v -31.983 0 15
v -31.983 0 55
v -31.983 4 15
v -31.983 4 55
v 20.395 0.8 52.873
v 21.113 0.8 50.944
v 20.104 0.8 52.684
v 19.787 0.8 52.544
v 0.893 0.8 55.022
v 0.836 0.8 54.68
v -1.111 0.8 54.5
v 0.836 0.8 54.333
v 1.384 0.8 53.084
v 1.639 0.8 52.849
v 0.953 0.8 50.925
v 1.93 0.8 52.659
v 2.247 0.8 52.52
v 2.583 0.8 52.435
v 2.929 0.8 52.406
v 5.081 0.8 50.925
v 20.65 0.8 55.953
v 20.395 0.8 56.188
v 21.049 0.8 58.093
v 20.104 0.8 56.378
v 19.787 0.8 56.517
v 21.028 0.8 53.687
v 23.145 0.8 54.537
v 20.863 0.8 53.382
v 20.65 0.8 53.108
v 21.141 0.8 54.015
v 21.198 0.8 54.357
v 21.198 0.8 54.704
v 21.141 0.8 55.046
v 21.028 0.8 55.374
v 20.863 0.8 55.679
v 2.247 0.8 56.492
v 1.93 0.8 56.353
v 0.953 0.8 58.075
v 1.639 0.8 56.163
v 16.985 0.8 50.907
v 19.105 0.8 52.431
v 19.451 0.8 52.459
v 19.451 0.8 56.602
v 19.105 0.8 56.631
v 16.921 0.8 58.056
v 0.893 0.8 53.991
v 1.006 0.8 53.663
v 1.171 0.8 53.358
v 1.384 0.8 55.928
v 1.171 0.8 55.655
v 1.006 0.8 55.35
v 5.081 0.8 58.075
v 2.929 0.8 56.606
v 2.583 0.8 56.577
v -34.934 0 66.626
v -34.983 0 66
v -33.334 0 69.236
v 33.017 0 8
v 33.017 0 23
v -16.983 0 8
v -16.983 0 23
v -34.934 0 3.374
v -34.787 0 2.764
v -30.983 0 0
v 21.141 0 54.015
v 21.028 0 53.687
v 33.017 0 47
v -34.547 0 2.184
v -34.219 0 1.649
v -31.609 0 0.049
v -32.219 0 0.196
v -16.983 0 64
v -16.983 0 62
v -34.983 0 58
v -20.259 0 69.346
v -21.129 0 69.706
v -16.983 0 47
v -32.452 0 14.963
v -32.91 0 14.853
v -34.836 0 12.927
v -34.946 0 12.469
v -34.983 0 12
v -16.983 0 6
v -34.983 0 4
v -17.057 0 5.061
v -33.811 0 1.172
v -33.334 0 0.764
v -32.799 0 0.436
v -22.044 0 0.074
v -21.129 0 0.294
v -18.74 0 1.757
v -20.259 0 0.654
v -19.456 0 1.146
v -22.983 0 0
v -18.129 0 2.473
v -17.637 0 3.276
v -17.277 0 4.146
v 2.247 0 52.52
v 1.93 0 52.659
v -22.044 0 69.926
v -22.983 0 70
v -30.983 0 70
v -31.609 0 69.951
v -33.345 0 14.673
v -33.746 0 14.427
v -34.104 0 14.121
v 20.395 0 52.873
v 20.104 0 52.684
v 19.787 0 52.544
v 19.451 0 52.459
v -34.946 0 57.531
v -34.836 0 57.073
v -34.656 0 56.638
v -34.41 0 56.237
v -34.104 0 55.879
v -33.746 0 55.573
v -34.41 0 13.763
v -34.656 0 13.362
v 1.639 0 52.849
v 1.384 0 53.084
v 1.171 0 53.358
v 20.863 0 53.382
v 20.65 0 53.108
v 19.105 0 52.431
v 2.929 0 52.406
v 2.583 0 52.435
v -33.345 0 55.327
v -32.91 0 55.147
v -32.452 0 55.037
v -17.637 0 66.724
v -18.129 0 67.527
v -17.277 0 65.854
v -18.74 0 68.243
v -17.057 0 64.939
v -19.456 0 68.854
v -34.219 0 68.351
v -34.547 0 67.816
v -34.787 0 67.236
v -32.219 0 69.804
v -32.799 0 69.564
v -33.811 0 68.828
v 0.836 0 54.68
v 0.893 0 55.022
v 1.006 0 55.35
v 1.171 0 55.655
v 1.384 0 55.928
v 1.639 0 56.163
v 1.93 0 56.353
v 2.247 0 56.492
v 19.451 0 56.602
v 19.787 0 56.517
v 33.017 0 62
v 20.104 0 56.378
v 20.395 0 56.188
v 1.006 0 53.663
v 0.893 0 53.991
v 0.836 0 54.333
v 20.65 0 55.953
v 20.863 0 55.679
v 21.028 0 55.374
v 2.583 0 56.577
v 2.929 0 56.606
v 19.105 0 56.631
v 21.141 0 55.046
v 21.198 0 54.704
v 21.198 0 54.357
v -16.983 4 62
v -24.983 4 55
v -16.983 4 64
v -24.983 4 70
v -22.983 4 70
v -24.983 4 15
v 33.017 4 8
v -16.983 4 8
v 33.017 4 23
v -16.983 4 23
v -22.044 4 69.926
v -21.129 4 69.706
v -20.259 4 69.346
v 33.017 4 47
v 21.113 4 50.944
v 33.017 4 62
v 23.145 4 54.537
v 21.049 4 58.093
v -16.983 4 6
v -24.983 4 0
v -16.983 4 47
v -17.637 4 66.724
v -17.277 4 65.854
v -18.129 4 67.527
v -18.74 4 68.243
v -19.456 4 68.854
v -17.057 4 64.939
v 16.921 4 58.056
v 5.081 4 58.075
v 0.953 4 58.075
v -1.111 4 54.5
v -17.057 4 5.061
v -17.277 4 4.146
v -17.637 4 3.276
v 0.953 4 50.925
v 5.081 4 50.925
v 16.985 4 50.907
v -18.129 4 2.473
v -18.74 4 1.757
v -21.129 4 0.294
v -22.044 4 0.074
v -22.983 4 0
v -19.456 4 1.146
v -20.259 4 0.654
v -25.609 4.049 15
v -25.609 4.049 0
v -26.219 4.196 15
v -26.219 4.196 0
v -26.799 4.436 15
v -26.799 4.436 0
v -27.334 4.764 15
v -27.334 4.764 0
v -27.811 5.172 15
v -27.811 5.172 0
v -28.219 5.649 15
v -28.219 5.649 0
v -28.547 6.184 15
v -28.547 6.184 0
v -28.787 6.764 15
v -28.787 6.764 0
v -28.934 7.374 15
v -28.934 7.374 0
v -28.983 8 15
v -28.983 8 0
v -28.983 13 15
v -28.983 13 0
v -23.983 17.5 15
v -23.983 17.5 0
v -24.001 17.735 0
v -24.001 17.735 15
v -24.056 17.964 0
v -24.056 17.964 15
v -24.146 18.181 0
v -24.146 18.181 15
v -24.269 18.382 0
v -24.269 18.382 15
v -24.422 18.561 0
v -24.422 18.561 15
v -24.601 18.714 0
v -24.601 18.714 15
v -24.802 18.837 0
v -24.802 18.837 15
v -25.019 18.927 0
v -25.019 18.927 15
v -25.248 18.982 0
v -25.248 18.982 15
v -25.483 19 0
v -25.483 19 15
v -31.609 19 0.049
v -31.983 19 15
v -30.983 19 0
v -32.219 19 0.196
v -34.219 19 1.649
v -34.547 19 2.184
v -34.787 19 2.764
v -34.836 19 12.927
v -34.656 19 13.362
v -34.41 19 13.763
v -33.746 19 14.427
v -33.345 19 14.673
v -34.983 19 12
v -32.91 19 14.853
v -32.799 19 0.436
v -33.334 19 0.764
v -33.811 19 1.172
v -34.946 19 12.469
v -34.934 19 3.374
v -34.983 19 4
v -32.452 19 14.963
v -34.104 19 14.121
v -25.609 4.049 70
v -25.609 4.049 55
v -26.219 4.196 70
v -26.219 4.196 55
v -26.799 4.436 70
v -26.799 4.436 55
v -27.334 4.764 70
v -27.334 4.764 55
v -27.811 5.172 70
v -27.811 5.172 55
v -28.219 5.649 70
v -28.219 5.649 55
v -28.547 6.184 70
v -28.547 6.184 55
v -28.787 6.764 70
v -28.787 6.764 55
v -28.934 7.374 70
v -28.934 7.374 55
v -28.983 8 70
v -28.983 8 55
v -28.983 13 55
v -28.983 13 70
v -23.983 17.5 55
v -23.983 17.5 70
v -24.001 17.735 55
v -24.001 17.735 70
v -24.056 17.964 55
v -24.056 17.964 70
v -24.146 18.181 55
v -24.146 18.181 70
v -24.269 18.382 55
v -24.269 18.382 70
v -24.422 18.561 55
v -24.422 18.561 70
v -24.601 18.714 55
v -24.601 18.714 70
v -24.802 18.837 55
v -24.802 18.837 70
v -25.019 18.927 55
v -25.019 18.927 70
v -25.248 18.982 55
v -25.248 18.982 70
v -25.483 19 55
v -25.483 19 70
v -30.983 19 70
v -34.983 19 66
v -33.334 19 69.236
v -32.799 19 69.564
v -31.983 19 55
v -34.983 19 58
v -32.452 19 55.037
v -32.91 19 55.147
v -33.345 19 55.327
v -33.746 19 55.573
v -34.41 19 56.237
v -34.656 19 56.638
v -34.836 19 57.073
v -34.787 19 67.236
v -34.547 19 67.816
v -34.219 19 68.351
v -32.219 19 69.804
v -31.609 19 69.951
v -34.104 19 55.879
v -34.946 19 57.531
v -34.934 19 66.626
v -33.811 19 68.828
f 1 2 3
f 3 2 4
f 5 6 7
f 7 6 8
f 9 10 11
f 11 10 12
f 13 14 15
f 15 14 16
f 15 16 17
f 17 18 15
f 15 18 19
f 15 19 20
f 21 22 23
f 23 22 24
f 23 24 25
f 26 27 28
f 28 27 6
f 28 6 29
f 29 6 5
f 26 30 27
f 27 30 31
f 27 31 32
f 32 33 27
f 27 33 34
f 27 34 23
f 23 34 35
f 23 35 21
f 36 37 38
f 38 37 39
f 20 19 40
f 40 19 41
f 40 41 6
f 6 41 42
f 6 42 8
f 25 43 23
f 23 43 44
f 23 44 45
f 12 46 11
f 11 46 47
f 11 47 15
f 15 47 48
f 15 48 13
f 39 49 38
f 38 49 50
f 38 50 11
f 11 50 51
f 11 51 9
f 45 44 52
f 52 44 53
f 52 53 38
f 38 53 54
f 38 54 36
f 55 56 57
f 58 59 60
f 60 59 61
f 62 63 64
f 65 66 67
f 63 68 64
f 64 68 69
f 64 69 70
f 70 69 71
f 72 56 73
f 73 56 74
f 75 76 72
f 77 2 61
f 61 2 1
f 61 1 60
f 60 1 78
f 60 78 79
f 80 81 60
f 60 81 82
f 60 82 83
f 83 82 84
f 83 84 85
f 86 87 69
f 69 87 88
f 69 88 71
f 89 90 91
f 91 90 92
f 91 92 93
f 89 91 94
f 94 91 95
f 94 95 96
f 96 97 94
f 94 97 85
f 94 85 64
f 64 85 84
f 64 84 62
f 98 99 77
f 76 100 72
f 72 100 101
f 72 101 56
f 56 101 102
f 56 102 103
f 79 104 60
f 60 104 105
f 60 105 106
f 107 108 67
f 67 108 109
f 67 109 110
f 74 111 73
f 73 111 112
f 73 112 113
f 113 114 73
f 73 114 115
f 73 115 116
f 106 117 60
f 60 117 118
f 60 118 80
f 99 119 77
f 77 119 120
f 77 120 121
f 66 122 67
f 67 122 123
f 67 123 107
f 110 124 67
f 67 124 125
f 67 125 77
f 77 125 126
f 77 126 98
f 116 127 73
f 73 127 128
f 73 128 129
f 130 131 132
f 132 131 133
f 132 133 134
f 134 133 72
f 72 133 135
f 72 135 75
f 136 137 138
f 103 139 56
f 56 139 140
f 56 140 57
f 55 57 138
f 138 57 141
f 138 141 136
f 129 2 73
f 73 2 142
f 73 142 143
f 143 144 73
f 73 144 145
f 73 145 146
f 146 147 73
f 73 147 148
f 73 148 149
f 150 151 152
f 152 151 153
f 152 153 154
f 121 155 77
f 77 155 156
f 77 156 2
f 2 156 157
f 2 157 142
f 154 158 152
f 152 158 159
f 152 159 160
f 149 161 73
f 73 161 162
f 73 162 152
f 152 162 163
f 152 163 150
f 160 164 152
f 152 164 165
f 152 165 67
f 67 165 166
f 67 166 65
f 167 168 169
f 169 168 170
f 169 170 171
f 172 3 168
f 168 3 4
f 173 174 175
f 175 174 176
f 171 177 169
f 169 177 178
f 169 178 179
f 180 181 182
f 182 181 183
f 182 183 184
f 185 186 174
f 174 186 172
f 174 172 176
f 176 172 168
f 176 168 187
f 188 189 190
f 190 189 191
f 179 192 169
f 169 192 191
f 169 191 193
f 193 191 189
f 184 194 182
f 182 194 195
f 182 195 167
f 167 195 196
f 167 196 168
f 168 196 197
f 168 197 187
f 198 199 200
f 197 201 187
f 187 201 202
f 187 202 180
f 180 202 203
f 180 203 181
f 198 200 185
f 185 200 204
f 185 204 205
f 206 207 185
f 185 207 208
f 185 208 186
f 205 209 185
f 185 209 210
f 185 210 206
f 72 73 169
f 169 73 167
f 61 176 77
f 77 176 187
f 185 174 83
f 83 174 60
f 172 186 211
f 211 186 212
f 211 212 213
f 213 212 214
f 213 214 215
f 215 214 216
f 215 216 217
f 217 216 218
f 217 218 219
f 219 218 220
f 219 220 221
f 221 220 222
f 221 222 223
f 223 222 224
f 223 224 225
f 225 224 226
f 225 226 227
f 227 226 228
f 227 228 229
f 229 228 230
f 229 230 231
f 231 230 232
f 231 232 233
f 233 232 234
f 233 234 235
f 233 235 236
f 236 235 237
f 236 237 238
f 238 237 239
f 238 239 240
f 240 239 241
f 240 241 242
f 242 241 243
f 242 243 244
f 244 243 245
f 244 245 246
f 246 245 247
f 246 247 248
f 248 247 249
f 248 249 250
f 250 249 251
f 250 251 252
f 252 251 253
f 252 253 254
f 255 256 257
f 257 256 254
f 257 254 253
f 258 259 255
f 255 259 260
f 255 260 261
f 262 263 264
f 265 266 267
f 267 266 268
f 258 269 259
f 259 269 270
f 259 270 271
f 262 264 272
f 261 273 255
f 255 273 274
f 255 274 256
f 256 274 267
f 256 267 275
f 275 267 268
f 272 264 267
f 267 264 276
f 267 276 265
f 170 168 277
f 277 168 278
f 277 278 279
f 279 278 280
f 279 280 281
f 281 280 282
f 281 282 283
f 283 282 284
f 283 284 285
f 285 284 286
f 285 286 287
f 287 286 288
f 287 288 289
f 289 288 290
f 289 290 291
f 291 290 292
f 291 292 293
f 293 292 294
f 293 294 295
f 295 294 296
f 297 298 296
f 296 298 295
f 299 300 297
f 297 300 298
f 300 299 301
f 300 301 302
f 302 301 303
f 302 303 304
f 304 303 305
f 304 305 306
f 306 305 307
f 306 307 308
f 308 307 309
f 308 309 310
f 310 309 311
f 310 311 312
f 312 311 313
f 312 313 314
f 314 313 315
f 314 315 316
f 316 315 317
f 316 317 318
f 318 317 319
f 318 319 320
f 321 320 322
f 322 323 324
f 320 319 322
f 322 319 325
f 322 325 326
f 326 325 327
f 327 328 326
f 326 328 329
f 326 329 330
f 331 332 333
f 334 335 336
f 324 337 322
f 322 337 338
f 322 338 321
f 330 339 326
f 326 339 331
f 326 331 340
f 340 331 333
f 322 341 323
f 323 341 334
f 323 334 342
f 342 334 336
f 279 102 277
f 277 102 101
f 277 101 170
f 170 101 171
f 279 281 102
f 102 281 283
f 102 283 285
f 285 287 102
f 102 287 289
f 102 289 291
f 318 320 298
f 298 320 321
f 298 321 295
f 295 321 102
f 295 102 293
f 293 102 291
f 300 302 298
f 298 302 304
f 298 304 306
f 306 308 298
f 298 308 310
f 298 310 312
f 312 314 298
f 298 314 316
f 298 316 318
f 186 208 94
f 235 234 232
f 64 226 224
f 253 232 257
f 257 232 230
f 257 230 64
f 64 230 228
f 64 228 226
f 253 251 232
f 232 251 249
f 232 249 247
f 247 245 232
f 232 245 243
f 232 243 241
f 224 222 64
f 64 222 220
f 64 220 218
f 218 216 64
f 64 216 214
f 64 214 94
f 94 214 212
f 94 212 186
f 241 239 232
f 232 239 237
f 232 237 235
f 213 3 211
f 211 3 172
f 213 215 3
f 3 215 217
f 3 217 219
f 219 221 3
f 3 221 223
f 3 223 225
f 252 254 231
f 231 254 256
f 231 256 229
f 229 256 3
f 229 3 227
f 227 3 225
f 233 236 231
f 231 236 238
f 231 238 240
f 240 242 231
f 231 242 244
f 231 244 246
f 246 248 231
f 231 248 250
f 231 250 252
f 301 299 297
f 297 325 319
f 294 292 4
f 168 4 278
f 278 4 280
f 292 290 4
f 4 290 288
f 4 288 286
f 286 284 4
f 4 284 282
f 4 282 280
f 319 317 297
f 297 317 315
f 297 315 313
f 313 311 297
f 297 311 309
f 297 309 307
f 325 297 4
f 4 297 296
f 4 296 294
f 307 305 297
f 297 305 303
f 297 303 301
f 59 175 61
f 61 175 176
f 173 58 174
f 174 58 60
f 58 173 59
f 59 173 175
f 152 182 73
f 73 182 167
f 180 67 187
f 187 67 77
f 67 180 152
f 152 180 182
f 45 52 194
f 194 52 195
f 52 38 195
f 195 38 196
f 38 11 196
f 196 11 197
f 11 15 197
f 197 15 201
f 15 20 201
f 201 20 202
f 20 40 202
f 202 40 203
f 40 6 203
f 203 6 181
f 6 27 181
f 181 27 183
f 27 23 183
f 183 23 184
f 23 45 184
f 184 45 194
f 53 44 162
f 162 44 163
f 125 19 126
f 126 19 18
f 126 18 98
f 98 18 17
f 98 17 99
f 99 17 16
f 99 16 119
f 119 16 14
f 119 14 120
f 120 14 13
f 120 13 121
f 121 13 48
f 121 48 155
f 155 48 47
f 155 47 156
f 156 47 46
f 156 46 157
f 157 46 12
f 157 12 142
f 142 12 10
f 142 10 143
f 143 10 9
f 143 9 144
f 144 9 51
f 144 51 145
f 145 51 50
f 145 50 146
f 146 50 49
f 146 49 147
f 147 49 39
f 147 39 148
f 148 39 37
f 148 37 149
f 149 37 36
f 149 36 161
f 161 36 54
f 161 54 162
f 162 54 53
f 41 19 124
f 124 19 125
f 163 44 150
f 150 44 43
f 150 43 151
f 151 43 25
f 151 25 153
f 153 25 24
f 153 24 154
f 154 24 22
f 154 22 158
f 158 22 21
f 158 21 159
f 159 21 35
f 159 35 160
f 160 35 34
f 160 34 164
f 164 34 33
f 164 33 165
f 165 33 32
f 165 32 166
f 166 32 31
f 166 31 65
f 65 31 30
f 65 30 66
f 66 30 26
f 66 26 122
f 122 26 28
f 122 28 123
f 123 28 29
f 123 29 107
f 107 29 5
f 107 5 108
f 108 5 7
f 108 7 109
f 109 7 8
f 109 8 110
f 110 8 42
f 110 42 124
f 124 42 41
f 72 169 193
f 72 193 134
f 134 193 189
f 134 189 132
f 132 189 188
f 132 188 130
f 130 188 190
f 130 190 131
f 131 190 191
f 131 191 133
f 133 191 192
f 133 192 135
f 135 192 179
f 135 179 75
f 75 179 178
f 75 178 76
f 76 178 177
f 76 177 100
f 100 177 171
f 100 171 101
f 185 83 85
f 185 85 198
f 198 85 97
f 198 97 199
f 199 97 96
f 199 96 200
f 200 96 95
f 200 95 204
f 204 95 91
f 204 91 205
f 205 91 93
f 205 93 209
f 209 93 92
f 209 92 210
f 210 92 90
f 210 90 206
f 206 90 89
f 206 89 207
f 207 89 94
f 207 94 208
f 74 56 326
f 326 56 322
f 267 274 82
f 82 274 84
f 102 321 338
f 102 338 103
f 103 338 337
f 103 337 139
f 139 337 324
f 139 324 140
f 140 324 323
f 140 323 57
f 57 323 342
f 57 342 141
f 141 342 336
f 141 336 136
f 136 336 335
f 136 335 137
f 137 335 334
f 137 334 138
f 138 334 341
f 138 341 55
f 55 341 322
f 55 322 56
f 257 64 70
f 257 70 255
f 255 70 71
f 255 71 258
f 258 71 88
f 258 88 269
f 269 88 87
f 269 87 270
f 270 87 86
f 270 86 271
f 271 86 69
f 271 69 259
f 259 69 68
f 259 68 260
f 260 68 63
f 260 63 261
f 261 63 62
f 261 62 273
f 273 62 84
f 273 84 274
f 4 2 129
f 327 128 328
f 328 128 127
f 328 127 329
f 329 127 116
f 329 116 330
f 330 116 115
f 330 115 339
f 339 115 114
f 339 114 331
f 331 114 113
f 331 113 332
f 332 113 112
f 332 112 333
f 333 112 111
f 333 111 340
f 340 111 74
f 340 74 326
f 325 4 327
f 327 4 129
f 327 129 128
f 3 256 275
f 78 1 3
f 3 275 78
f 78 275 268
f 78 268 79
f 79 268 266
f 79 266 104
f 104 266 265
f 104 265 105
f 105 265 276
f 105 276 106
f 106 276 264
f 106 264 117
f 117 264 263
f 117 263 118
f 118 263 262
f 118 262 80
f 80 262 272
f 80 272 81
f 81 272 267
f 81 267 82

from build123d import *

# Parameters (mm, degrees)
BOSS_EXTRU_1_DEPTH      = 70
ESQUISSE5_W             = 40
ESQUISSE5_H             = 15
ENL_V_MAT_EXTRU_2_DEPTH = 10
ESQUISSE7_W             = 15
ESQUISSE7_H             = 4
BOSS_EXTRU_4_DEPTH      = 50
ENL_V_MAT_EXTRU_6_DEPTH = 3.2
ENL_V_MAT_EXTRU_7_DEPTH = 3.2
CONG_1_R                = 6
ESQUISSE19_W            = 3
ESQUISSE19_H            = 15
BOSS_EXTRU_6_DEPTH      = 19
CONG_3_R                = 4
CONG_5_R                = 3


with BuildPart() as part:
    # Esquisse1 → Boss.-Extru.1 (new body)
    with BuildSketch(Plane.XY):
        with BuildLine():
            Line((-31.982945736, 17), (-31.982945736, 0))
            Line((-31.982945736, 0), (-16.982945736, 0))
            Line((-16.982945736, 0), (-16.982945736, 4))
            Line((-16.982945736, 4), (-24.982945736, 4))
            ThreePointArc((-24.982945736, 4), (-27.811372861, 5.171572875), (-28.982945736, 8))
            Line((-28.982945736, 8), (-28.982945736, 13))
            Line((-28.982945736, 13), (-23.982945736, 17.5))
            ThreePointArc((-23.982945736, 17.5), (-24.422285565, 18.560660172), (-25.482945736, 19))
            Line((-25.482945736, 19), (-28.982945736, 19))
            Line((-28.982945736, 19), (-29.982945736, 19))
            Line((-29.982945736, 19), (-31.982945736, 19))
            Line((-31.982945736, 19), (-31.982945736, 18))
            Line((-31.982945736, 18), (-31.982945736, 17))
        make_face()
    extrude(amount=BOSS_EXTRU_1_DEPTH)

    # Esquisse5 → Enlèv. mat.-Extru.2 (cut)
    with BuildSketch(Plane.ZY.offset(31.982945736)):
        with Locations((35, 11.5)):
            Rectangle(ESQUISSE5_W, ESQUISSE5_H)
    extrude(amount=-ENL_V_MAT_EXTRU_2_DEPTH, mode=Mode.SUBTRACT)

    # Esquisse7 → Boss.-Extru.4 (add)
    with BuildSketch(Plane(origin=(-16.982945736, 0, 0), x_dir=(0, 0, -1), z_dir=(1, 0, 0))):
        with Locations((-15.5, 2)):
            Rectangle(ESQUISSE7_W, ESQUISSE7_H)
        with Locations((-54.5, 2)):
            Rectangle(ESQUISSE7_W, ESQUISSE7_H)
    extrude(amount=BOSS_EXTRU_4_DEPTH)

    # Esquisse17 → Enlèv. mat.-Extru.6 (cut)
    with BuildSketch(Plane(origin=(0, 4, 0), x_dir=(1, 0, 0), z_dir=(0, 1, 0))):
        Polygon((5.081081476, -50.925), (0.953027051, -50.925), (-1.111000161, -54.5), (0.953027051, -58.075), (5.081081476, -58.075), (7.145108688, -54.5), align=None)
        Polygon((16.921295497, -58.056491041), (5.081081476, -58.075), (7.145108688, -54.5), (5.081081476, -50.925), (16.984922057, -50.906774147), (14.88916329, -54.463265188), align=None)
        Polygon((16.921295497, -58.056491041), (21.04918647, -58.093225853), (23.144945237, -54.536734812), (21.11281303, -50.943508959), (16.984922057, -50.906774147), (14.88916329, -54.463265188), align=None)
    extrude(amount=-ENL_V_MAT_EXTRU_6_DEPTH, mode=Mode.SUBTRACT)

    # Esquisse18 → Enlèv. mat.-Extru.7 (cut)
    with BuildSketch(Plane(origin=(0, 0.8, 0), x_dir=(1, 0, 0), z_dir=(0, 1, 0))):
        with BuildLine():
            Line((19.104945237, -52.430616368), (2.928995206, -52.406118437))
            ThreePointArc((2.928995206, -52.406118437), (0.828995206, -54.506118437), (2.928995206, -56.606118437))
            Line((2.928995206, -56.606118437), (19.104945237, -56.630616368))
            ThreePointArc((19.104945237, -56.630616368), (21.204945237, -54.530616368), (19.104945237, -52.430616368))
        make_face()
    extrude(amount=-ENL_V_MAT_EXTRU_7_DEPTH, mode=Mode.SUBTRACT)

    # Congé1
    cong_1_edges = [part.edges().sort_by_distance(p)[0] for p in [
        (-16.982945736, 2, 0),
        (-16.982945736, 2, 70),
    ]]
    fillet(cong_1_edges, radius=CONG_1_R)

    # Esquisse19 → Boss.-Extru.6 (add)
    with BuildSketch(Plane.XZ):
        with Locations((-33.482945736, 62.5)):
            Rectangle(ESQUISSE19_W, ESQUISSE19_H)
        with Locations((-33.482945736, 7.5)):
            Rectangle(ESQUISSE19_W, ESQUISSE19_H)
    extrude(amount=-BOSS_EXTRU_6_DEPTH)

    # Congé3
    cong_3_edges = [part.edges().sort_by_distance(p)[0] for p in [
        (-34.982945736, 9.5, 70),
        (-34.982945736, 9.5, 0),
    ]]
    fillet(cong_3_edges, radius=CONG_3_R)

    # Congé5
    cong_5_edges = [part.edges().sort_by_distance(p)[0] for p in [
        (-34.982945736, 9.5, 55),
        (-34.982945736, 9.5, 15),
    ]]
    fillet(cong_5_edges, radius=CONG_5_R - 0.0001)  # a hair under: the kernel refuses the full size


solid = part.part
